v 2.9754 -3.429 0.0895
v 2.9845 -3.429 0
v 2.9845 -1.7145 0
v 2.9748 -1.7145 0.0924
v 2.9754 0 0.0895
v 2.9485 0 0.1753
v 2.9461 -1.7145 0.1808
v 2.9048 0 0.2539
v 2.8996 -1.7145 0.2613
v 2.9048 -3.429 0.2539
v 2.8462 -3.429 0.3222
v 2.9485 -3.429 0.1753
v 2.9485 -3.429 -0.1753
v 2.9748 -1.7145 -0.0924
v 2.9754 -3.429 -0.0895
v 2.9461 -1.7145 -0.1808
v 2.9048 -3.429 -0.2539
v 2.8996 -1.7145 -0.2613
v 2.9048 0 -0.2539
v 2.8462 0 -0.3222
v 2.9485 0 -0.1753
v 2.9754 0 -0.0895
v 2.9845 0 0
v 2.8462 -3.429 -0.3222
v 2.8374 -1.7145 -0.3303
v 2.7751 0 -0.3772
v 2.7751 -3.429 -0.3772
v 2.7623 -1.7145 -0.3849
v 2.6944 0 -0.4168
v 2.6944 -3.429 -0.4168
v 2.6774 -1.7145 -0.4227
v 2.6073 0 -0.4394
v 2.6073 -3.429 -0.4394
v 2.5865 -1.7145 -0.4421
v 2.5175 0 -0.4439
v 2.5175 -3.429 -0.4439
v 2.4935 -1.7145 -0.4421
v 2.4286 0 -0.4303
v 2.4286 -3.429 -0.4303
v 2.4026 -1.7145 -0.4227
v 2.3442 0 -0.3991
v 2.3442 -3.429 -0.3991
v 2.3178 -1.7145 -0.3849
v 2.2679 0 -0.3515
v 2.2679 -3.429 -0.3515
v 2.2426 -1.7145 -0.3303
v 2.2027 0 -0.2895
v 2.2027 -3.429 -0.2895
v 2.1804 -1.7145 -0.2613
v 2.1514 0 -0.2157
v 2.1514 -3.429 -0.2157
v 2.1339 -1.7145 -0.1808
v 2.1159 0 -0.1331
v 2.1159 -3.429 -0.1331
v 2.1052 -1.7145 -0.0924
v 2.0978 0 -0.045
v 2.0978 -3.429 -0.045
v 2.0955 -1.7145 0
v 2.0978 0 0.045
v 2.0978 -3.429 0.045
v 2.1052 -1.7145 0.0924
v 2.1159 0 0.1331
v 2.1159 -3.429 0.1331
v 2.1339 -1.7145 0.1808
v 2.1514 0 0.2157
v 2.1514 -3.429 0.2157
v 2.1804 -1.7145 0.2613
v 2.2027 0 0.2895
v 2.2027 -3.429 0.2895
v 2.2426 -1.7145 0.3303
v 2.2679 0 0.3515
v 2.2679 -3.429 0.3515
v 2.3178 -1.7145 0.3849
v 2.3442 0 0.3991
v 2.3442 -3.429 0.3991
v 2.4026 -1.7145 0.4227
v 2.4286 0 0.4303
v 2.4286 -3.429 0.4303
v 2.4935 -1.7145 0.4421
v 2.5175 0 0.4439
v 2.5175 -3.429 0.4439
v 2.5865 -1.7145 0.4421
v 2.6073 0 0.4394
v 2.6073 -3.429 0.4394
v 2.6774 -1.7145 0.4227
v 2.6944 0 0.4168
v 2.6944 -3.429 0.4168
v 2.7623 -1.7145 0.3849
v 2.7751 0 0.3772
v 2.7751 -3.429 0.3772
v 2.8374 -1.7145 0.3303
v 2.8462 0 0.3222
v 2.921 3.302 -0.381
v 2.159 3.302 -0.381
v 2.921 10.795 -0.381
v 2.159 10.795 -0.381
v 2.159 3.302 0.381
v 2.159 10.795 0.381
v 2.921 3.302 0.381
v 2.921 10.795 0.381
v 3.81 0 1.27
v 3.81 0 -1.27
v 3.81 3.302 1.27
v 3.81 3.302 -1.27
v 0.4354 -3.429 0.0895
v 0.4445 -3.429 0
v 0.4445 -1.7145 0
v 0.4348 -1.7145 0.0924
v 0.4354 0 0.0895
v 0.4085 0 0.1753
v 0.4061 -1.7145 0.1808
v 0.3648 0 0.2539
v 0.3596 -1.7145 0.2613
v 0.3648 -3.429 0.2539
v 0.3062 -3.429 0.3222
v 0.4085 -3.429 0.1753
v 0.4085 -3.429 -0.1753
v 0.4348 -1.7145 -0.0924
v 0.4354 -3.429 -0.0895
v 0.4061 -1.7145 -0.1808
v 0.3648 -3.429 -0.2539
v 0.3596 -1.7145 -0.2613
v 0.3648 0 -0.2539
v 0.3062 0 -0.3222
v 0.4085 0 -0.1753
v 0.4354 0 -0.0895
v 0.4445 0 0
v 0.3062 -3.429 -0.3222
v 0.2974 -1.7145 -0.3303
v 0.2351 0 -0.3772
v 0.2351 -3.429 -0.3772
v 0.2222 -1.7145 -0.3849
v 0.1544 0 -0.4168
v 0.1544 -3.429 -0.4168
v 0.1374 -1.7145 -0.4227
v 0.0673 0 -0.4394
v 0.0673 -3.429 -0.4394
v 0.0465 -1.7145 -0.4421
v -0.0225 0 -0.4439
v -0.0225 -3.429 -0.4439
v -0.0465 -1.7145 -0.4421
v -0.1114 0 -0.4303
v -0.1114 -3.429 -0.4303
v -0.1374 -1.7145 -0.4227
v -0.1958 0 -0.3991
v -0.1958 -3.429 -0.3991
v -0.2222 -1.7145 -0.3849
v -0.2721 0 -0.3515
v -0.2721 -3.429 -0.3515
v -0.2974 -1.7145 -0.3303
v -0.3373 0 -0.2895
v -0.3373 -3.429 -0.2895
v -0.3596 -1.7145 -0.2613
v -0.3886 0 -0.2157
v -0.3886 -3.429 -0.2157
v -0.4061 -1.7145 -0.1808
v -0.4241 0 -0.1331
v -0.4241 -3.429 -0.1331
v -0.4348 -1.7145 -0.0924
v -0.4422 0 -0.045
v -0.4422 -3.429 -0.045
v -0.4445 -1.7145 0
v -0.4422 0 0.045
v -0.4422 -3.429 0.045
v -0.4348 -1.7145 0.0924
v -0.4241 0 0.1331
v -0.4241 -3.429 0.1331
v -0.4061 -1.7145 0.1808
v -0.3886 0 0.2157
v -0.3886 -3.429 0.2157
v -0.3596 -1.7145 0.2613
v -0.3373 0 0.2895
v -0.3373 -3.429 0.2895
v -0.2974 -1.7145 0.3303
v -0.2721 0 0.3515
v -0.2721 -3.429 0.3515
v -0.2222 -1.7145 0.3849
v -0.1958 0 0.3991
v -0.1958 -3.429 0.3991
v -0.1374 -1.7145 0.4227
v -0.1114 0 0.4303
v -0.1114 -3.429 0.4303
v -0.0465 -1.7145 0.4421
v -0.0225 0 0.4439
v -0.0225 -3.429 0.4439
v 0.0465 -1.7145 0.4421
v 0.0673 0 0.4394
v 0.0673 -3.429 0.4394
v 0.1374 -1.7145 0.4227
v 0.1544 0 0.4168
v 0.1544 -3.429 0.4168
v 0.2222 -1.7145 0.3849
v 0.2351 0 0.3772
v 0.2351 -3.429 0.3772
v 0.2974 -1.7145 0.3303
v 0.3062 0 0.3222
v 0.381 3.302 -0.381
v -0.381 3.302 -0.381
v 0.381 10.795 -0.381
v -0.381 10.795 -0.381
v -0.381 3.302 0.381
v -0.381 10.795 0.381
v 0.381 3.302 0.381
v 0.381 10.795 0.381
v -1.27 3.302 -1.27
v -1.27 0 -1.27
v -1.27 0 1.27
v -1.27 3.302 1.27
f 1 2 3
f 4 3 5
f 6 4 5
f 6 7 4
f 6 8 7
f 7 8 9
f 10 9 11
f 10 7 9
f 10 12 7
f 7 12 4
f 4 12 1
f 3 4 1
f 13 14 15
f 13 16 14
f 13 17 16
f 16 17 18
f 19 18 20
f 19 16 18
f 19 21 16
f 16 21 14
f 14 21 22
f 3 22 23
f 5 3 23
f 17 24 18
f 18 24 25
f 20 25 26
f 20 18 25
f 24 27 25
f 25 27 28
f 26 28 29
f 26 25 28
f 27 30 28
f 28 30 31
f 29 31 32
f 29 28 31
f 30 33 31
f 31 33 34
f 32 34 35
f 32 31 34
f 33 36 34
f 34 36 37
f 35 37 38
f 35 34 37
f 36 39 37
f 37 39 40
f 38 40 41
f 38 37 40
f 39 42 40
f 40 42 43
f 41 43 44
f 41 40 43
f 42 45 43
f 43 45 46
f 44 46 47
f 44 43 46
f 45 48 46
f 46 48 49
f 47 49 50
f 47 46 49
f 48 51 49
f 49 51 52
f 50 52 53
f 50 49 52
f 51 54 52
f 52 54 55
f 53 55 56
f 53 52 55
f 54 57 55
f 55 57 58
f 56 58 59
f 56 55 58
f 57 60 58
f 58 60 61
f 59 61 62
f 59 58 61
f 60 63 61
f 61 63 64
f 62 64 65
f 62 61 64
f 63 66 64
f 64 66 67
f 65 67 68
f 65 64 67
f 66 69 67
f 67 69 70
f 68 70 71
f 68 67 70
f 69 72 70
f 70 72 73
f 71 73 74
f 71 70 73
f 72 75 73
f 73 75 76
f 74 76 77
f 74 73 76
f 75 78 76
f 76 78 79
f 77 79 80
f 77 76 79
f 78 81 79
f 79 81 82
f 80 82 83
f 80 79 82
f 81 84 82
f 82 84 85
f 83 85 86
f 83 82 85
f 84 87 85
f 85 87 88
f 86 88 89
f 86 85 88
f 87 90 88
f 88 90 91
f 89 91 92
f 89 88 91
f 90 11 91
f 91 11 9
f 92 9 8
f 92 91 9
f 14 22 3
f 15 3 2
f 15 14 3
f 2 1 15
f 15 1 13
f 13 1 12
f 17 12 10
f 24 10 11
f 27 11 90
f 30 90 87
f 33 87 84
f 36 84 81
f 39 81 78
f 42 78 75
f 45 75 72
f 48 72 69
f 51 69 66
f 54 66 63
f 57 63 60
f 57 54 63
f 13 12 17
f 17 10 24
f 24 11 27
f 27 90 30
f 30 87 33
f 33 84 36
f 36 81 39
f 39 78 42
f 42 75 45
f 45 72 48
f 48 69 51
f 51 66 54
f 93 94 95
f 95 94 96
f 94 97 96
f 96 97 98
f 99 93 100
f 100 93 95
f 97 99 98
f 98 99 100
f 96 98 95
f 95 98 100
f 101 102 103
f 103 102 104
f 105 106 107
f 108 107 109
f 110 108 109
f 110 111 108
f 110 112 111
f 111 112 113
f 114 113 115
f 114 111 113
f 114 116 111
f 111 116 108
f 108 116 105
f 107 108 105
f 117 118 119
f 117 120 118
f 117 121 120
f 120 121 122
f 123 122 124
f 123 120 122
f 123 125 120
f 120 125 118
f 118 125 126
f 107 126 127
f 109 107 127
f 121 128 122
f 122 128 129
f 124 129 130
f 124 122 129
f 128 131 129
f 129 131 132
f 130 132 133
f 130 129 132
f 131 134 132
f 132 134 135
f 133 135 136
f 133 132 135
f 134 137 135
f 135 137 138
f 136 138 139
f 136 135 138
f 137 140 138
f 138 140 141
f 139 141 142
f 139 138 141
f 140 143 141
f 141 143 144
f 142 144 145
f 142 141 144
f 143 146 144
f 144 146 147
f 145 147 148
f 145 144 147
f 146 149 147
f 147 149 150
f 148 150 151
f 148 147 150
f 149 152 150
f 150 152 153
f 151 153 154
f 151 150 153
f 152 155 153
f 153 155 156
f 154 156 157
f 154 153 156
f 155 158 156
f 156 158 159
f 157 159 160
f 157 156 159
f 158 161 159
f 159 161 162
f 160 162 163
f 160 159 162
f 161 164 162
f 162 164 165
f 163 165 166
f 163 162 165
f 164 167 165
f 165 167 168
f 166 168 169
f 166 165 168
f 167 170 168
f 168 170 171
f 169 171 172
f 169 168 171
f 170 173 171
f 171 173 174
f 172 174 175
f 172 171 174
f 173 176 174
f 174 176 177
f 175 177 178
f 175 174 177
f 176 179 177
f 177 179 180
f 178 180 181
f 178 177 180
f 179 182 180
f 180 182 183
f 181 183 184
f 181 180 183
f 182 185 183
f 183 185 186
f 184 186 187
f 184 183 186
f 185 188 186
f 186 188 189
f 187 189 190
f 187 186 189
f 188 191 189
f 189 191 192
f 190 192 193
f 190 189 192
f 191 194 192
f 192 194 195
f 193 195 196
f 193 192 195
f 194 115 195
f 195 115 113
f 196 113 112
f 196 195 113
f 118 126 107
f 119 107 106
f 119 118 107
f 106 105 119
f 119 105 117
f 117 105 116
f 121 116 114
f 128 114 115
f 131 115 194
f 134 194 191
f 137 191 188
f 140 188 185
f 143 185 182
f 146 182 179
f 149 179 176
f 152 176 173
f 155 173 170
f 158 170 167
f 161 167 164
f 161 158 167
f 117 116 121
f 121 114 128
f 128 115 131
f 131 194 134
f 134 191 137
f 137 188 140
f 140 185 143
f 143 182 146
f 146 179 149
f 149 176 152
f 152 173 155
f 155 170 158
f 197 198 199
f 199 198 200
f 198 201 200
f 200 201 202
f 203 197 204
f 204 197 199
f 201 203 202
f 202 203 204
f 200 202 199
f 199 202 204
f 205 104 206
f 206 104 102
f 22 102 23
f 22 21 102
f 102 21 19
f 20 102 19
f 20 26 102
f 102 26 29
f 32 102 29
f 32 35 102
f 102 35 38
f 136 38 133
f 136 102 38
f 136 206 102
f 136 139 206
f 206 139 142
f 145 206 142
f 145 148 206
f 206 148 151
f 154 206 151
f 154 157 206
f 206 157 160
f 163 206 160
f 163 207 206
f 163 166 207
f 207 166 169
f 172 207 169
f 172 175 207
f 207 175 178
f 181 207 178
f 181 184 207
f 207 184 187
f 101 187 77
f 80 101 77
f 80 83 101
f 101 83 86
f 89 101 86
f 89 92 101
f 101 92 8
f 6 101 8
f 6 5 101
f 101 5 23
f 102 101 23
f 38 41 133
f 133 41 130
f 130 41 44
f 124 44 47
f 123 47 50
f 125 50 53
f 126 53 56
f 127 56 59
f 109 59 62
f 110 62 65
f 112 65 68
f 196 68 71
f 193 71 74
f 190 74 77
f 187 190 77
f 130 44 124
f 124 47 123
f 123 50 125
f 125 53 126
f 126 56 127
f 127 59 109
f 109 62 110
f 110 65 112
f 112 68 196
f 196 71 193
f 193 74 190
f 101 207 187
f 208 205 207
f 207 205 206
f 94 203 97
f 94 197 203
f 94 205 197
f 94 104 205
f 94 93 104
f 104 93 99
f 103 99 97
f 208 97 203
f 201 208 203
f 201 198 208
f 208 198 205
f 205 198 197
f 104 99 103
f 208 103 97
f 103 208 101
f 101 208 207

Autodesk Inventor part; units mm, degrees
ref_plane "YZ Plane (RIGHT)" through (0, 0, 0) normal (1, 0, 0) x (0, 1, 0)
ref_plane "XZ Plane (TOP)" through (0, 0, 0) normal (0, 1, 0) x (-1, 0, 0)
ref_plane "XY Plane (FRONT)" through (0, 0, 0) normal (0, 0, 1) x (1, 0, 0)
sketch "Sketch2" plane through (0, 0, 0) normal (0, 0, 1) x (1, 0, 0)
  line L0 (-1.778, 0) -> (1.778, 0) construction
  line L1 (0, 3.9624) -> (0, -0.6604) construction
  line L2 (-1.27, 3.302) -> (1.27, 3.302)
  line L3 (1.27, 3.302) -> (1.27, 0)
  line L4 (1.27, 0) -> (-1.27, 0)
  line L5 (-1.27, 0) -> (-1.27, 3.302)
  point P0 (0, 0)
  dimension "d0" = 2.54
  dimension "d1" = 3.302
extrude "Extrusion1" add sketch "Sketch2" along normal mid plane 2.54
sketch "Sketch3" plane through (-1.27, 0, 1.27) normal (0, -1, 0) x (1, 0, 0)
  circle A0 centre (1.27, -1.27) radius 0.4445
  line L0 (1.27, 0.508) -> (1.27, -3.048) construction
  line L1 (-0.508, -1.27) -> (3.048, -1.27) construction
  line L2 (0.889, -0.889) -> (1.651, -0.889)
  line L3 (1.651, -0.889) -> (1.651, -1.651)
  line L4 (1.651, -1.651) -> (0.889, -1.651)
  line L5 (0.889, -1.651) -> (0.889, -0.889)
  dimension "d4" = 0.762
  dimension "d5" = 0.889
extrude "Extrusion2" add sketch "Sketch3" against normal blind 10.795 contours L3 A0 L4 L5 L2 | A0 L2 L3 | L3 L4 A0 | A0 L5 L2 | L4 L5 A0
extrude "Extrusion3" add sketch "Sketch3" along normal blind 3.429 contours A0 L3 | L3 A0 L4 L5 L2 | L2 A0 | A0 L4 | L5 A0
pattern_linear "Rectangular Pattern1" count 2 spacing 2.54 along (1, 0, 0) of "Extrusion1", "Extrusion2", "Extrusion3"
properties part number "Jumper 2 Pin"
